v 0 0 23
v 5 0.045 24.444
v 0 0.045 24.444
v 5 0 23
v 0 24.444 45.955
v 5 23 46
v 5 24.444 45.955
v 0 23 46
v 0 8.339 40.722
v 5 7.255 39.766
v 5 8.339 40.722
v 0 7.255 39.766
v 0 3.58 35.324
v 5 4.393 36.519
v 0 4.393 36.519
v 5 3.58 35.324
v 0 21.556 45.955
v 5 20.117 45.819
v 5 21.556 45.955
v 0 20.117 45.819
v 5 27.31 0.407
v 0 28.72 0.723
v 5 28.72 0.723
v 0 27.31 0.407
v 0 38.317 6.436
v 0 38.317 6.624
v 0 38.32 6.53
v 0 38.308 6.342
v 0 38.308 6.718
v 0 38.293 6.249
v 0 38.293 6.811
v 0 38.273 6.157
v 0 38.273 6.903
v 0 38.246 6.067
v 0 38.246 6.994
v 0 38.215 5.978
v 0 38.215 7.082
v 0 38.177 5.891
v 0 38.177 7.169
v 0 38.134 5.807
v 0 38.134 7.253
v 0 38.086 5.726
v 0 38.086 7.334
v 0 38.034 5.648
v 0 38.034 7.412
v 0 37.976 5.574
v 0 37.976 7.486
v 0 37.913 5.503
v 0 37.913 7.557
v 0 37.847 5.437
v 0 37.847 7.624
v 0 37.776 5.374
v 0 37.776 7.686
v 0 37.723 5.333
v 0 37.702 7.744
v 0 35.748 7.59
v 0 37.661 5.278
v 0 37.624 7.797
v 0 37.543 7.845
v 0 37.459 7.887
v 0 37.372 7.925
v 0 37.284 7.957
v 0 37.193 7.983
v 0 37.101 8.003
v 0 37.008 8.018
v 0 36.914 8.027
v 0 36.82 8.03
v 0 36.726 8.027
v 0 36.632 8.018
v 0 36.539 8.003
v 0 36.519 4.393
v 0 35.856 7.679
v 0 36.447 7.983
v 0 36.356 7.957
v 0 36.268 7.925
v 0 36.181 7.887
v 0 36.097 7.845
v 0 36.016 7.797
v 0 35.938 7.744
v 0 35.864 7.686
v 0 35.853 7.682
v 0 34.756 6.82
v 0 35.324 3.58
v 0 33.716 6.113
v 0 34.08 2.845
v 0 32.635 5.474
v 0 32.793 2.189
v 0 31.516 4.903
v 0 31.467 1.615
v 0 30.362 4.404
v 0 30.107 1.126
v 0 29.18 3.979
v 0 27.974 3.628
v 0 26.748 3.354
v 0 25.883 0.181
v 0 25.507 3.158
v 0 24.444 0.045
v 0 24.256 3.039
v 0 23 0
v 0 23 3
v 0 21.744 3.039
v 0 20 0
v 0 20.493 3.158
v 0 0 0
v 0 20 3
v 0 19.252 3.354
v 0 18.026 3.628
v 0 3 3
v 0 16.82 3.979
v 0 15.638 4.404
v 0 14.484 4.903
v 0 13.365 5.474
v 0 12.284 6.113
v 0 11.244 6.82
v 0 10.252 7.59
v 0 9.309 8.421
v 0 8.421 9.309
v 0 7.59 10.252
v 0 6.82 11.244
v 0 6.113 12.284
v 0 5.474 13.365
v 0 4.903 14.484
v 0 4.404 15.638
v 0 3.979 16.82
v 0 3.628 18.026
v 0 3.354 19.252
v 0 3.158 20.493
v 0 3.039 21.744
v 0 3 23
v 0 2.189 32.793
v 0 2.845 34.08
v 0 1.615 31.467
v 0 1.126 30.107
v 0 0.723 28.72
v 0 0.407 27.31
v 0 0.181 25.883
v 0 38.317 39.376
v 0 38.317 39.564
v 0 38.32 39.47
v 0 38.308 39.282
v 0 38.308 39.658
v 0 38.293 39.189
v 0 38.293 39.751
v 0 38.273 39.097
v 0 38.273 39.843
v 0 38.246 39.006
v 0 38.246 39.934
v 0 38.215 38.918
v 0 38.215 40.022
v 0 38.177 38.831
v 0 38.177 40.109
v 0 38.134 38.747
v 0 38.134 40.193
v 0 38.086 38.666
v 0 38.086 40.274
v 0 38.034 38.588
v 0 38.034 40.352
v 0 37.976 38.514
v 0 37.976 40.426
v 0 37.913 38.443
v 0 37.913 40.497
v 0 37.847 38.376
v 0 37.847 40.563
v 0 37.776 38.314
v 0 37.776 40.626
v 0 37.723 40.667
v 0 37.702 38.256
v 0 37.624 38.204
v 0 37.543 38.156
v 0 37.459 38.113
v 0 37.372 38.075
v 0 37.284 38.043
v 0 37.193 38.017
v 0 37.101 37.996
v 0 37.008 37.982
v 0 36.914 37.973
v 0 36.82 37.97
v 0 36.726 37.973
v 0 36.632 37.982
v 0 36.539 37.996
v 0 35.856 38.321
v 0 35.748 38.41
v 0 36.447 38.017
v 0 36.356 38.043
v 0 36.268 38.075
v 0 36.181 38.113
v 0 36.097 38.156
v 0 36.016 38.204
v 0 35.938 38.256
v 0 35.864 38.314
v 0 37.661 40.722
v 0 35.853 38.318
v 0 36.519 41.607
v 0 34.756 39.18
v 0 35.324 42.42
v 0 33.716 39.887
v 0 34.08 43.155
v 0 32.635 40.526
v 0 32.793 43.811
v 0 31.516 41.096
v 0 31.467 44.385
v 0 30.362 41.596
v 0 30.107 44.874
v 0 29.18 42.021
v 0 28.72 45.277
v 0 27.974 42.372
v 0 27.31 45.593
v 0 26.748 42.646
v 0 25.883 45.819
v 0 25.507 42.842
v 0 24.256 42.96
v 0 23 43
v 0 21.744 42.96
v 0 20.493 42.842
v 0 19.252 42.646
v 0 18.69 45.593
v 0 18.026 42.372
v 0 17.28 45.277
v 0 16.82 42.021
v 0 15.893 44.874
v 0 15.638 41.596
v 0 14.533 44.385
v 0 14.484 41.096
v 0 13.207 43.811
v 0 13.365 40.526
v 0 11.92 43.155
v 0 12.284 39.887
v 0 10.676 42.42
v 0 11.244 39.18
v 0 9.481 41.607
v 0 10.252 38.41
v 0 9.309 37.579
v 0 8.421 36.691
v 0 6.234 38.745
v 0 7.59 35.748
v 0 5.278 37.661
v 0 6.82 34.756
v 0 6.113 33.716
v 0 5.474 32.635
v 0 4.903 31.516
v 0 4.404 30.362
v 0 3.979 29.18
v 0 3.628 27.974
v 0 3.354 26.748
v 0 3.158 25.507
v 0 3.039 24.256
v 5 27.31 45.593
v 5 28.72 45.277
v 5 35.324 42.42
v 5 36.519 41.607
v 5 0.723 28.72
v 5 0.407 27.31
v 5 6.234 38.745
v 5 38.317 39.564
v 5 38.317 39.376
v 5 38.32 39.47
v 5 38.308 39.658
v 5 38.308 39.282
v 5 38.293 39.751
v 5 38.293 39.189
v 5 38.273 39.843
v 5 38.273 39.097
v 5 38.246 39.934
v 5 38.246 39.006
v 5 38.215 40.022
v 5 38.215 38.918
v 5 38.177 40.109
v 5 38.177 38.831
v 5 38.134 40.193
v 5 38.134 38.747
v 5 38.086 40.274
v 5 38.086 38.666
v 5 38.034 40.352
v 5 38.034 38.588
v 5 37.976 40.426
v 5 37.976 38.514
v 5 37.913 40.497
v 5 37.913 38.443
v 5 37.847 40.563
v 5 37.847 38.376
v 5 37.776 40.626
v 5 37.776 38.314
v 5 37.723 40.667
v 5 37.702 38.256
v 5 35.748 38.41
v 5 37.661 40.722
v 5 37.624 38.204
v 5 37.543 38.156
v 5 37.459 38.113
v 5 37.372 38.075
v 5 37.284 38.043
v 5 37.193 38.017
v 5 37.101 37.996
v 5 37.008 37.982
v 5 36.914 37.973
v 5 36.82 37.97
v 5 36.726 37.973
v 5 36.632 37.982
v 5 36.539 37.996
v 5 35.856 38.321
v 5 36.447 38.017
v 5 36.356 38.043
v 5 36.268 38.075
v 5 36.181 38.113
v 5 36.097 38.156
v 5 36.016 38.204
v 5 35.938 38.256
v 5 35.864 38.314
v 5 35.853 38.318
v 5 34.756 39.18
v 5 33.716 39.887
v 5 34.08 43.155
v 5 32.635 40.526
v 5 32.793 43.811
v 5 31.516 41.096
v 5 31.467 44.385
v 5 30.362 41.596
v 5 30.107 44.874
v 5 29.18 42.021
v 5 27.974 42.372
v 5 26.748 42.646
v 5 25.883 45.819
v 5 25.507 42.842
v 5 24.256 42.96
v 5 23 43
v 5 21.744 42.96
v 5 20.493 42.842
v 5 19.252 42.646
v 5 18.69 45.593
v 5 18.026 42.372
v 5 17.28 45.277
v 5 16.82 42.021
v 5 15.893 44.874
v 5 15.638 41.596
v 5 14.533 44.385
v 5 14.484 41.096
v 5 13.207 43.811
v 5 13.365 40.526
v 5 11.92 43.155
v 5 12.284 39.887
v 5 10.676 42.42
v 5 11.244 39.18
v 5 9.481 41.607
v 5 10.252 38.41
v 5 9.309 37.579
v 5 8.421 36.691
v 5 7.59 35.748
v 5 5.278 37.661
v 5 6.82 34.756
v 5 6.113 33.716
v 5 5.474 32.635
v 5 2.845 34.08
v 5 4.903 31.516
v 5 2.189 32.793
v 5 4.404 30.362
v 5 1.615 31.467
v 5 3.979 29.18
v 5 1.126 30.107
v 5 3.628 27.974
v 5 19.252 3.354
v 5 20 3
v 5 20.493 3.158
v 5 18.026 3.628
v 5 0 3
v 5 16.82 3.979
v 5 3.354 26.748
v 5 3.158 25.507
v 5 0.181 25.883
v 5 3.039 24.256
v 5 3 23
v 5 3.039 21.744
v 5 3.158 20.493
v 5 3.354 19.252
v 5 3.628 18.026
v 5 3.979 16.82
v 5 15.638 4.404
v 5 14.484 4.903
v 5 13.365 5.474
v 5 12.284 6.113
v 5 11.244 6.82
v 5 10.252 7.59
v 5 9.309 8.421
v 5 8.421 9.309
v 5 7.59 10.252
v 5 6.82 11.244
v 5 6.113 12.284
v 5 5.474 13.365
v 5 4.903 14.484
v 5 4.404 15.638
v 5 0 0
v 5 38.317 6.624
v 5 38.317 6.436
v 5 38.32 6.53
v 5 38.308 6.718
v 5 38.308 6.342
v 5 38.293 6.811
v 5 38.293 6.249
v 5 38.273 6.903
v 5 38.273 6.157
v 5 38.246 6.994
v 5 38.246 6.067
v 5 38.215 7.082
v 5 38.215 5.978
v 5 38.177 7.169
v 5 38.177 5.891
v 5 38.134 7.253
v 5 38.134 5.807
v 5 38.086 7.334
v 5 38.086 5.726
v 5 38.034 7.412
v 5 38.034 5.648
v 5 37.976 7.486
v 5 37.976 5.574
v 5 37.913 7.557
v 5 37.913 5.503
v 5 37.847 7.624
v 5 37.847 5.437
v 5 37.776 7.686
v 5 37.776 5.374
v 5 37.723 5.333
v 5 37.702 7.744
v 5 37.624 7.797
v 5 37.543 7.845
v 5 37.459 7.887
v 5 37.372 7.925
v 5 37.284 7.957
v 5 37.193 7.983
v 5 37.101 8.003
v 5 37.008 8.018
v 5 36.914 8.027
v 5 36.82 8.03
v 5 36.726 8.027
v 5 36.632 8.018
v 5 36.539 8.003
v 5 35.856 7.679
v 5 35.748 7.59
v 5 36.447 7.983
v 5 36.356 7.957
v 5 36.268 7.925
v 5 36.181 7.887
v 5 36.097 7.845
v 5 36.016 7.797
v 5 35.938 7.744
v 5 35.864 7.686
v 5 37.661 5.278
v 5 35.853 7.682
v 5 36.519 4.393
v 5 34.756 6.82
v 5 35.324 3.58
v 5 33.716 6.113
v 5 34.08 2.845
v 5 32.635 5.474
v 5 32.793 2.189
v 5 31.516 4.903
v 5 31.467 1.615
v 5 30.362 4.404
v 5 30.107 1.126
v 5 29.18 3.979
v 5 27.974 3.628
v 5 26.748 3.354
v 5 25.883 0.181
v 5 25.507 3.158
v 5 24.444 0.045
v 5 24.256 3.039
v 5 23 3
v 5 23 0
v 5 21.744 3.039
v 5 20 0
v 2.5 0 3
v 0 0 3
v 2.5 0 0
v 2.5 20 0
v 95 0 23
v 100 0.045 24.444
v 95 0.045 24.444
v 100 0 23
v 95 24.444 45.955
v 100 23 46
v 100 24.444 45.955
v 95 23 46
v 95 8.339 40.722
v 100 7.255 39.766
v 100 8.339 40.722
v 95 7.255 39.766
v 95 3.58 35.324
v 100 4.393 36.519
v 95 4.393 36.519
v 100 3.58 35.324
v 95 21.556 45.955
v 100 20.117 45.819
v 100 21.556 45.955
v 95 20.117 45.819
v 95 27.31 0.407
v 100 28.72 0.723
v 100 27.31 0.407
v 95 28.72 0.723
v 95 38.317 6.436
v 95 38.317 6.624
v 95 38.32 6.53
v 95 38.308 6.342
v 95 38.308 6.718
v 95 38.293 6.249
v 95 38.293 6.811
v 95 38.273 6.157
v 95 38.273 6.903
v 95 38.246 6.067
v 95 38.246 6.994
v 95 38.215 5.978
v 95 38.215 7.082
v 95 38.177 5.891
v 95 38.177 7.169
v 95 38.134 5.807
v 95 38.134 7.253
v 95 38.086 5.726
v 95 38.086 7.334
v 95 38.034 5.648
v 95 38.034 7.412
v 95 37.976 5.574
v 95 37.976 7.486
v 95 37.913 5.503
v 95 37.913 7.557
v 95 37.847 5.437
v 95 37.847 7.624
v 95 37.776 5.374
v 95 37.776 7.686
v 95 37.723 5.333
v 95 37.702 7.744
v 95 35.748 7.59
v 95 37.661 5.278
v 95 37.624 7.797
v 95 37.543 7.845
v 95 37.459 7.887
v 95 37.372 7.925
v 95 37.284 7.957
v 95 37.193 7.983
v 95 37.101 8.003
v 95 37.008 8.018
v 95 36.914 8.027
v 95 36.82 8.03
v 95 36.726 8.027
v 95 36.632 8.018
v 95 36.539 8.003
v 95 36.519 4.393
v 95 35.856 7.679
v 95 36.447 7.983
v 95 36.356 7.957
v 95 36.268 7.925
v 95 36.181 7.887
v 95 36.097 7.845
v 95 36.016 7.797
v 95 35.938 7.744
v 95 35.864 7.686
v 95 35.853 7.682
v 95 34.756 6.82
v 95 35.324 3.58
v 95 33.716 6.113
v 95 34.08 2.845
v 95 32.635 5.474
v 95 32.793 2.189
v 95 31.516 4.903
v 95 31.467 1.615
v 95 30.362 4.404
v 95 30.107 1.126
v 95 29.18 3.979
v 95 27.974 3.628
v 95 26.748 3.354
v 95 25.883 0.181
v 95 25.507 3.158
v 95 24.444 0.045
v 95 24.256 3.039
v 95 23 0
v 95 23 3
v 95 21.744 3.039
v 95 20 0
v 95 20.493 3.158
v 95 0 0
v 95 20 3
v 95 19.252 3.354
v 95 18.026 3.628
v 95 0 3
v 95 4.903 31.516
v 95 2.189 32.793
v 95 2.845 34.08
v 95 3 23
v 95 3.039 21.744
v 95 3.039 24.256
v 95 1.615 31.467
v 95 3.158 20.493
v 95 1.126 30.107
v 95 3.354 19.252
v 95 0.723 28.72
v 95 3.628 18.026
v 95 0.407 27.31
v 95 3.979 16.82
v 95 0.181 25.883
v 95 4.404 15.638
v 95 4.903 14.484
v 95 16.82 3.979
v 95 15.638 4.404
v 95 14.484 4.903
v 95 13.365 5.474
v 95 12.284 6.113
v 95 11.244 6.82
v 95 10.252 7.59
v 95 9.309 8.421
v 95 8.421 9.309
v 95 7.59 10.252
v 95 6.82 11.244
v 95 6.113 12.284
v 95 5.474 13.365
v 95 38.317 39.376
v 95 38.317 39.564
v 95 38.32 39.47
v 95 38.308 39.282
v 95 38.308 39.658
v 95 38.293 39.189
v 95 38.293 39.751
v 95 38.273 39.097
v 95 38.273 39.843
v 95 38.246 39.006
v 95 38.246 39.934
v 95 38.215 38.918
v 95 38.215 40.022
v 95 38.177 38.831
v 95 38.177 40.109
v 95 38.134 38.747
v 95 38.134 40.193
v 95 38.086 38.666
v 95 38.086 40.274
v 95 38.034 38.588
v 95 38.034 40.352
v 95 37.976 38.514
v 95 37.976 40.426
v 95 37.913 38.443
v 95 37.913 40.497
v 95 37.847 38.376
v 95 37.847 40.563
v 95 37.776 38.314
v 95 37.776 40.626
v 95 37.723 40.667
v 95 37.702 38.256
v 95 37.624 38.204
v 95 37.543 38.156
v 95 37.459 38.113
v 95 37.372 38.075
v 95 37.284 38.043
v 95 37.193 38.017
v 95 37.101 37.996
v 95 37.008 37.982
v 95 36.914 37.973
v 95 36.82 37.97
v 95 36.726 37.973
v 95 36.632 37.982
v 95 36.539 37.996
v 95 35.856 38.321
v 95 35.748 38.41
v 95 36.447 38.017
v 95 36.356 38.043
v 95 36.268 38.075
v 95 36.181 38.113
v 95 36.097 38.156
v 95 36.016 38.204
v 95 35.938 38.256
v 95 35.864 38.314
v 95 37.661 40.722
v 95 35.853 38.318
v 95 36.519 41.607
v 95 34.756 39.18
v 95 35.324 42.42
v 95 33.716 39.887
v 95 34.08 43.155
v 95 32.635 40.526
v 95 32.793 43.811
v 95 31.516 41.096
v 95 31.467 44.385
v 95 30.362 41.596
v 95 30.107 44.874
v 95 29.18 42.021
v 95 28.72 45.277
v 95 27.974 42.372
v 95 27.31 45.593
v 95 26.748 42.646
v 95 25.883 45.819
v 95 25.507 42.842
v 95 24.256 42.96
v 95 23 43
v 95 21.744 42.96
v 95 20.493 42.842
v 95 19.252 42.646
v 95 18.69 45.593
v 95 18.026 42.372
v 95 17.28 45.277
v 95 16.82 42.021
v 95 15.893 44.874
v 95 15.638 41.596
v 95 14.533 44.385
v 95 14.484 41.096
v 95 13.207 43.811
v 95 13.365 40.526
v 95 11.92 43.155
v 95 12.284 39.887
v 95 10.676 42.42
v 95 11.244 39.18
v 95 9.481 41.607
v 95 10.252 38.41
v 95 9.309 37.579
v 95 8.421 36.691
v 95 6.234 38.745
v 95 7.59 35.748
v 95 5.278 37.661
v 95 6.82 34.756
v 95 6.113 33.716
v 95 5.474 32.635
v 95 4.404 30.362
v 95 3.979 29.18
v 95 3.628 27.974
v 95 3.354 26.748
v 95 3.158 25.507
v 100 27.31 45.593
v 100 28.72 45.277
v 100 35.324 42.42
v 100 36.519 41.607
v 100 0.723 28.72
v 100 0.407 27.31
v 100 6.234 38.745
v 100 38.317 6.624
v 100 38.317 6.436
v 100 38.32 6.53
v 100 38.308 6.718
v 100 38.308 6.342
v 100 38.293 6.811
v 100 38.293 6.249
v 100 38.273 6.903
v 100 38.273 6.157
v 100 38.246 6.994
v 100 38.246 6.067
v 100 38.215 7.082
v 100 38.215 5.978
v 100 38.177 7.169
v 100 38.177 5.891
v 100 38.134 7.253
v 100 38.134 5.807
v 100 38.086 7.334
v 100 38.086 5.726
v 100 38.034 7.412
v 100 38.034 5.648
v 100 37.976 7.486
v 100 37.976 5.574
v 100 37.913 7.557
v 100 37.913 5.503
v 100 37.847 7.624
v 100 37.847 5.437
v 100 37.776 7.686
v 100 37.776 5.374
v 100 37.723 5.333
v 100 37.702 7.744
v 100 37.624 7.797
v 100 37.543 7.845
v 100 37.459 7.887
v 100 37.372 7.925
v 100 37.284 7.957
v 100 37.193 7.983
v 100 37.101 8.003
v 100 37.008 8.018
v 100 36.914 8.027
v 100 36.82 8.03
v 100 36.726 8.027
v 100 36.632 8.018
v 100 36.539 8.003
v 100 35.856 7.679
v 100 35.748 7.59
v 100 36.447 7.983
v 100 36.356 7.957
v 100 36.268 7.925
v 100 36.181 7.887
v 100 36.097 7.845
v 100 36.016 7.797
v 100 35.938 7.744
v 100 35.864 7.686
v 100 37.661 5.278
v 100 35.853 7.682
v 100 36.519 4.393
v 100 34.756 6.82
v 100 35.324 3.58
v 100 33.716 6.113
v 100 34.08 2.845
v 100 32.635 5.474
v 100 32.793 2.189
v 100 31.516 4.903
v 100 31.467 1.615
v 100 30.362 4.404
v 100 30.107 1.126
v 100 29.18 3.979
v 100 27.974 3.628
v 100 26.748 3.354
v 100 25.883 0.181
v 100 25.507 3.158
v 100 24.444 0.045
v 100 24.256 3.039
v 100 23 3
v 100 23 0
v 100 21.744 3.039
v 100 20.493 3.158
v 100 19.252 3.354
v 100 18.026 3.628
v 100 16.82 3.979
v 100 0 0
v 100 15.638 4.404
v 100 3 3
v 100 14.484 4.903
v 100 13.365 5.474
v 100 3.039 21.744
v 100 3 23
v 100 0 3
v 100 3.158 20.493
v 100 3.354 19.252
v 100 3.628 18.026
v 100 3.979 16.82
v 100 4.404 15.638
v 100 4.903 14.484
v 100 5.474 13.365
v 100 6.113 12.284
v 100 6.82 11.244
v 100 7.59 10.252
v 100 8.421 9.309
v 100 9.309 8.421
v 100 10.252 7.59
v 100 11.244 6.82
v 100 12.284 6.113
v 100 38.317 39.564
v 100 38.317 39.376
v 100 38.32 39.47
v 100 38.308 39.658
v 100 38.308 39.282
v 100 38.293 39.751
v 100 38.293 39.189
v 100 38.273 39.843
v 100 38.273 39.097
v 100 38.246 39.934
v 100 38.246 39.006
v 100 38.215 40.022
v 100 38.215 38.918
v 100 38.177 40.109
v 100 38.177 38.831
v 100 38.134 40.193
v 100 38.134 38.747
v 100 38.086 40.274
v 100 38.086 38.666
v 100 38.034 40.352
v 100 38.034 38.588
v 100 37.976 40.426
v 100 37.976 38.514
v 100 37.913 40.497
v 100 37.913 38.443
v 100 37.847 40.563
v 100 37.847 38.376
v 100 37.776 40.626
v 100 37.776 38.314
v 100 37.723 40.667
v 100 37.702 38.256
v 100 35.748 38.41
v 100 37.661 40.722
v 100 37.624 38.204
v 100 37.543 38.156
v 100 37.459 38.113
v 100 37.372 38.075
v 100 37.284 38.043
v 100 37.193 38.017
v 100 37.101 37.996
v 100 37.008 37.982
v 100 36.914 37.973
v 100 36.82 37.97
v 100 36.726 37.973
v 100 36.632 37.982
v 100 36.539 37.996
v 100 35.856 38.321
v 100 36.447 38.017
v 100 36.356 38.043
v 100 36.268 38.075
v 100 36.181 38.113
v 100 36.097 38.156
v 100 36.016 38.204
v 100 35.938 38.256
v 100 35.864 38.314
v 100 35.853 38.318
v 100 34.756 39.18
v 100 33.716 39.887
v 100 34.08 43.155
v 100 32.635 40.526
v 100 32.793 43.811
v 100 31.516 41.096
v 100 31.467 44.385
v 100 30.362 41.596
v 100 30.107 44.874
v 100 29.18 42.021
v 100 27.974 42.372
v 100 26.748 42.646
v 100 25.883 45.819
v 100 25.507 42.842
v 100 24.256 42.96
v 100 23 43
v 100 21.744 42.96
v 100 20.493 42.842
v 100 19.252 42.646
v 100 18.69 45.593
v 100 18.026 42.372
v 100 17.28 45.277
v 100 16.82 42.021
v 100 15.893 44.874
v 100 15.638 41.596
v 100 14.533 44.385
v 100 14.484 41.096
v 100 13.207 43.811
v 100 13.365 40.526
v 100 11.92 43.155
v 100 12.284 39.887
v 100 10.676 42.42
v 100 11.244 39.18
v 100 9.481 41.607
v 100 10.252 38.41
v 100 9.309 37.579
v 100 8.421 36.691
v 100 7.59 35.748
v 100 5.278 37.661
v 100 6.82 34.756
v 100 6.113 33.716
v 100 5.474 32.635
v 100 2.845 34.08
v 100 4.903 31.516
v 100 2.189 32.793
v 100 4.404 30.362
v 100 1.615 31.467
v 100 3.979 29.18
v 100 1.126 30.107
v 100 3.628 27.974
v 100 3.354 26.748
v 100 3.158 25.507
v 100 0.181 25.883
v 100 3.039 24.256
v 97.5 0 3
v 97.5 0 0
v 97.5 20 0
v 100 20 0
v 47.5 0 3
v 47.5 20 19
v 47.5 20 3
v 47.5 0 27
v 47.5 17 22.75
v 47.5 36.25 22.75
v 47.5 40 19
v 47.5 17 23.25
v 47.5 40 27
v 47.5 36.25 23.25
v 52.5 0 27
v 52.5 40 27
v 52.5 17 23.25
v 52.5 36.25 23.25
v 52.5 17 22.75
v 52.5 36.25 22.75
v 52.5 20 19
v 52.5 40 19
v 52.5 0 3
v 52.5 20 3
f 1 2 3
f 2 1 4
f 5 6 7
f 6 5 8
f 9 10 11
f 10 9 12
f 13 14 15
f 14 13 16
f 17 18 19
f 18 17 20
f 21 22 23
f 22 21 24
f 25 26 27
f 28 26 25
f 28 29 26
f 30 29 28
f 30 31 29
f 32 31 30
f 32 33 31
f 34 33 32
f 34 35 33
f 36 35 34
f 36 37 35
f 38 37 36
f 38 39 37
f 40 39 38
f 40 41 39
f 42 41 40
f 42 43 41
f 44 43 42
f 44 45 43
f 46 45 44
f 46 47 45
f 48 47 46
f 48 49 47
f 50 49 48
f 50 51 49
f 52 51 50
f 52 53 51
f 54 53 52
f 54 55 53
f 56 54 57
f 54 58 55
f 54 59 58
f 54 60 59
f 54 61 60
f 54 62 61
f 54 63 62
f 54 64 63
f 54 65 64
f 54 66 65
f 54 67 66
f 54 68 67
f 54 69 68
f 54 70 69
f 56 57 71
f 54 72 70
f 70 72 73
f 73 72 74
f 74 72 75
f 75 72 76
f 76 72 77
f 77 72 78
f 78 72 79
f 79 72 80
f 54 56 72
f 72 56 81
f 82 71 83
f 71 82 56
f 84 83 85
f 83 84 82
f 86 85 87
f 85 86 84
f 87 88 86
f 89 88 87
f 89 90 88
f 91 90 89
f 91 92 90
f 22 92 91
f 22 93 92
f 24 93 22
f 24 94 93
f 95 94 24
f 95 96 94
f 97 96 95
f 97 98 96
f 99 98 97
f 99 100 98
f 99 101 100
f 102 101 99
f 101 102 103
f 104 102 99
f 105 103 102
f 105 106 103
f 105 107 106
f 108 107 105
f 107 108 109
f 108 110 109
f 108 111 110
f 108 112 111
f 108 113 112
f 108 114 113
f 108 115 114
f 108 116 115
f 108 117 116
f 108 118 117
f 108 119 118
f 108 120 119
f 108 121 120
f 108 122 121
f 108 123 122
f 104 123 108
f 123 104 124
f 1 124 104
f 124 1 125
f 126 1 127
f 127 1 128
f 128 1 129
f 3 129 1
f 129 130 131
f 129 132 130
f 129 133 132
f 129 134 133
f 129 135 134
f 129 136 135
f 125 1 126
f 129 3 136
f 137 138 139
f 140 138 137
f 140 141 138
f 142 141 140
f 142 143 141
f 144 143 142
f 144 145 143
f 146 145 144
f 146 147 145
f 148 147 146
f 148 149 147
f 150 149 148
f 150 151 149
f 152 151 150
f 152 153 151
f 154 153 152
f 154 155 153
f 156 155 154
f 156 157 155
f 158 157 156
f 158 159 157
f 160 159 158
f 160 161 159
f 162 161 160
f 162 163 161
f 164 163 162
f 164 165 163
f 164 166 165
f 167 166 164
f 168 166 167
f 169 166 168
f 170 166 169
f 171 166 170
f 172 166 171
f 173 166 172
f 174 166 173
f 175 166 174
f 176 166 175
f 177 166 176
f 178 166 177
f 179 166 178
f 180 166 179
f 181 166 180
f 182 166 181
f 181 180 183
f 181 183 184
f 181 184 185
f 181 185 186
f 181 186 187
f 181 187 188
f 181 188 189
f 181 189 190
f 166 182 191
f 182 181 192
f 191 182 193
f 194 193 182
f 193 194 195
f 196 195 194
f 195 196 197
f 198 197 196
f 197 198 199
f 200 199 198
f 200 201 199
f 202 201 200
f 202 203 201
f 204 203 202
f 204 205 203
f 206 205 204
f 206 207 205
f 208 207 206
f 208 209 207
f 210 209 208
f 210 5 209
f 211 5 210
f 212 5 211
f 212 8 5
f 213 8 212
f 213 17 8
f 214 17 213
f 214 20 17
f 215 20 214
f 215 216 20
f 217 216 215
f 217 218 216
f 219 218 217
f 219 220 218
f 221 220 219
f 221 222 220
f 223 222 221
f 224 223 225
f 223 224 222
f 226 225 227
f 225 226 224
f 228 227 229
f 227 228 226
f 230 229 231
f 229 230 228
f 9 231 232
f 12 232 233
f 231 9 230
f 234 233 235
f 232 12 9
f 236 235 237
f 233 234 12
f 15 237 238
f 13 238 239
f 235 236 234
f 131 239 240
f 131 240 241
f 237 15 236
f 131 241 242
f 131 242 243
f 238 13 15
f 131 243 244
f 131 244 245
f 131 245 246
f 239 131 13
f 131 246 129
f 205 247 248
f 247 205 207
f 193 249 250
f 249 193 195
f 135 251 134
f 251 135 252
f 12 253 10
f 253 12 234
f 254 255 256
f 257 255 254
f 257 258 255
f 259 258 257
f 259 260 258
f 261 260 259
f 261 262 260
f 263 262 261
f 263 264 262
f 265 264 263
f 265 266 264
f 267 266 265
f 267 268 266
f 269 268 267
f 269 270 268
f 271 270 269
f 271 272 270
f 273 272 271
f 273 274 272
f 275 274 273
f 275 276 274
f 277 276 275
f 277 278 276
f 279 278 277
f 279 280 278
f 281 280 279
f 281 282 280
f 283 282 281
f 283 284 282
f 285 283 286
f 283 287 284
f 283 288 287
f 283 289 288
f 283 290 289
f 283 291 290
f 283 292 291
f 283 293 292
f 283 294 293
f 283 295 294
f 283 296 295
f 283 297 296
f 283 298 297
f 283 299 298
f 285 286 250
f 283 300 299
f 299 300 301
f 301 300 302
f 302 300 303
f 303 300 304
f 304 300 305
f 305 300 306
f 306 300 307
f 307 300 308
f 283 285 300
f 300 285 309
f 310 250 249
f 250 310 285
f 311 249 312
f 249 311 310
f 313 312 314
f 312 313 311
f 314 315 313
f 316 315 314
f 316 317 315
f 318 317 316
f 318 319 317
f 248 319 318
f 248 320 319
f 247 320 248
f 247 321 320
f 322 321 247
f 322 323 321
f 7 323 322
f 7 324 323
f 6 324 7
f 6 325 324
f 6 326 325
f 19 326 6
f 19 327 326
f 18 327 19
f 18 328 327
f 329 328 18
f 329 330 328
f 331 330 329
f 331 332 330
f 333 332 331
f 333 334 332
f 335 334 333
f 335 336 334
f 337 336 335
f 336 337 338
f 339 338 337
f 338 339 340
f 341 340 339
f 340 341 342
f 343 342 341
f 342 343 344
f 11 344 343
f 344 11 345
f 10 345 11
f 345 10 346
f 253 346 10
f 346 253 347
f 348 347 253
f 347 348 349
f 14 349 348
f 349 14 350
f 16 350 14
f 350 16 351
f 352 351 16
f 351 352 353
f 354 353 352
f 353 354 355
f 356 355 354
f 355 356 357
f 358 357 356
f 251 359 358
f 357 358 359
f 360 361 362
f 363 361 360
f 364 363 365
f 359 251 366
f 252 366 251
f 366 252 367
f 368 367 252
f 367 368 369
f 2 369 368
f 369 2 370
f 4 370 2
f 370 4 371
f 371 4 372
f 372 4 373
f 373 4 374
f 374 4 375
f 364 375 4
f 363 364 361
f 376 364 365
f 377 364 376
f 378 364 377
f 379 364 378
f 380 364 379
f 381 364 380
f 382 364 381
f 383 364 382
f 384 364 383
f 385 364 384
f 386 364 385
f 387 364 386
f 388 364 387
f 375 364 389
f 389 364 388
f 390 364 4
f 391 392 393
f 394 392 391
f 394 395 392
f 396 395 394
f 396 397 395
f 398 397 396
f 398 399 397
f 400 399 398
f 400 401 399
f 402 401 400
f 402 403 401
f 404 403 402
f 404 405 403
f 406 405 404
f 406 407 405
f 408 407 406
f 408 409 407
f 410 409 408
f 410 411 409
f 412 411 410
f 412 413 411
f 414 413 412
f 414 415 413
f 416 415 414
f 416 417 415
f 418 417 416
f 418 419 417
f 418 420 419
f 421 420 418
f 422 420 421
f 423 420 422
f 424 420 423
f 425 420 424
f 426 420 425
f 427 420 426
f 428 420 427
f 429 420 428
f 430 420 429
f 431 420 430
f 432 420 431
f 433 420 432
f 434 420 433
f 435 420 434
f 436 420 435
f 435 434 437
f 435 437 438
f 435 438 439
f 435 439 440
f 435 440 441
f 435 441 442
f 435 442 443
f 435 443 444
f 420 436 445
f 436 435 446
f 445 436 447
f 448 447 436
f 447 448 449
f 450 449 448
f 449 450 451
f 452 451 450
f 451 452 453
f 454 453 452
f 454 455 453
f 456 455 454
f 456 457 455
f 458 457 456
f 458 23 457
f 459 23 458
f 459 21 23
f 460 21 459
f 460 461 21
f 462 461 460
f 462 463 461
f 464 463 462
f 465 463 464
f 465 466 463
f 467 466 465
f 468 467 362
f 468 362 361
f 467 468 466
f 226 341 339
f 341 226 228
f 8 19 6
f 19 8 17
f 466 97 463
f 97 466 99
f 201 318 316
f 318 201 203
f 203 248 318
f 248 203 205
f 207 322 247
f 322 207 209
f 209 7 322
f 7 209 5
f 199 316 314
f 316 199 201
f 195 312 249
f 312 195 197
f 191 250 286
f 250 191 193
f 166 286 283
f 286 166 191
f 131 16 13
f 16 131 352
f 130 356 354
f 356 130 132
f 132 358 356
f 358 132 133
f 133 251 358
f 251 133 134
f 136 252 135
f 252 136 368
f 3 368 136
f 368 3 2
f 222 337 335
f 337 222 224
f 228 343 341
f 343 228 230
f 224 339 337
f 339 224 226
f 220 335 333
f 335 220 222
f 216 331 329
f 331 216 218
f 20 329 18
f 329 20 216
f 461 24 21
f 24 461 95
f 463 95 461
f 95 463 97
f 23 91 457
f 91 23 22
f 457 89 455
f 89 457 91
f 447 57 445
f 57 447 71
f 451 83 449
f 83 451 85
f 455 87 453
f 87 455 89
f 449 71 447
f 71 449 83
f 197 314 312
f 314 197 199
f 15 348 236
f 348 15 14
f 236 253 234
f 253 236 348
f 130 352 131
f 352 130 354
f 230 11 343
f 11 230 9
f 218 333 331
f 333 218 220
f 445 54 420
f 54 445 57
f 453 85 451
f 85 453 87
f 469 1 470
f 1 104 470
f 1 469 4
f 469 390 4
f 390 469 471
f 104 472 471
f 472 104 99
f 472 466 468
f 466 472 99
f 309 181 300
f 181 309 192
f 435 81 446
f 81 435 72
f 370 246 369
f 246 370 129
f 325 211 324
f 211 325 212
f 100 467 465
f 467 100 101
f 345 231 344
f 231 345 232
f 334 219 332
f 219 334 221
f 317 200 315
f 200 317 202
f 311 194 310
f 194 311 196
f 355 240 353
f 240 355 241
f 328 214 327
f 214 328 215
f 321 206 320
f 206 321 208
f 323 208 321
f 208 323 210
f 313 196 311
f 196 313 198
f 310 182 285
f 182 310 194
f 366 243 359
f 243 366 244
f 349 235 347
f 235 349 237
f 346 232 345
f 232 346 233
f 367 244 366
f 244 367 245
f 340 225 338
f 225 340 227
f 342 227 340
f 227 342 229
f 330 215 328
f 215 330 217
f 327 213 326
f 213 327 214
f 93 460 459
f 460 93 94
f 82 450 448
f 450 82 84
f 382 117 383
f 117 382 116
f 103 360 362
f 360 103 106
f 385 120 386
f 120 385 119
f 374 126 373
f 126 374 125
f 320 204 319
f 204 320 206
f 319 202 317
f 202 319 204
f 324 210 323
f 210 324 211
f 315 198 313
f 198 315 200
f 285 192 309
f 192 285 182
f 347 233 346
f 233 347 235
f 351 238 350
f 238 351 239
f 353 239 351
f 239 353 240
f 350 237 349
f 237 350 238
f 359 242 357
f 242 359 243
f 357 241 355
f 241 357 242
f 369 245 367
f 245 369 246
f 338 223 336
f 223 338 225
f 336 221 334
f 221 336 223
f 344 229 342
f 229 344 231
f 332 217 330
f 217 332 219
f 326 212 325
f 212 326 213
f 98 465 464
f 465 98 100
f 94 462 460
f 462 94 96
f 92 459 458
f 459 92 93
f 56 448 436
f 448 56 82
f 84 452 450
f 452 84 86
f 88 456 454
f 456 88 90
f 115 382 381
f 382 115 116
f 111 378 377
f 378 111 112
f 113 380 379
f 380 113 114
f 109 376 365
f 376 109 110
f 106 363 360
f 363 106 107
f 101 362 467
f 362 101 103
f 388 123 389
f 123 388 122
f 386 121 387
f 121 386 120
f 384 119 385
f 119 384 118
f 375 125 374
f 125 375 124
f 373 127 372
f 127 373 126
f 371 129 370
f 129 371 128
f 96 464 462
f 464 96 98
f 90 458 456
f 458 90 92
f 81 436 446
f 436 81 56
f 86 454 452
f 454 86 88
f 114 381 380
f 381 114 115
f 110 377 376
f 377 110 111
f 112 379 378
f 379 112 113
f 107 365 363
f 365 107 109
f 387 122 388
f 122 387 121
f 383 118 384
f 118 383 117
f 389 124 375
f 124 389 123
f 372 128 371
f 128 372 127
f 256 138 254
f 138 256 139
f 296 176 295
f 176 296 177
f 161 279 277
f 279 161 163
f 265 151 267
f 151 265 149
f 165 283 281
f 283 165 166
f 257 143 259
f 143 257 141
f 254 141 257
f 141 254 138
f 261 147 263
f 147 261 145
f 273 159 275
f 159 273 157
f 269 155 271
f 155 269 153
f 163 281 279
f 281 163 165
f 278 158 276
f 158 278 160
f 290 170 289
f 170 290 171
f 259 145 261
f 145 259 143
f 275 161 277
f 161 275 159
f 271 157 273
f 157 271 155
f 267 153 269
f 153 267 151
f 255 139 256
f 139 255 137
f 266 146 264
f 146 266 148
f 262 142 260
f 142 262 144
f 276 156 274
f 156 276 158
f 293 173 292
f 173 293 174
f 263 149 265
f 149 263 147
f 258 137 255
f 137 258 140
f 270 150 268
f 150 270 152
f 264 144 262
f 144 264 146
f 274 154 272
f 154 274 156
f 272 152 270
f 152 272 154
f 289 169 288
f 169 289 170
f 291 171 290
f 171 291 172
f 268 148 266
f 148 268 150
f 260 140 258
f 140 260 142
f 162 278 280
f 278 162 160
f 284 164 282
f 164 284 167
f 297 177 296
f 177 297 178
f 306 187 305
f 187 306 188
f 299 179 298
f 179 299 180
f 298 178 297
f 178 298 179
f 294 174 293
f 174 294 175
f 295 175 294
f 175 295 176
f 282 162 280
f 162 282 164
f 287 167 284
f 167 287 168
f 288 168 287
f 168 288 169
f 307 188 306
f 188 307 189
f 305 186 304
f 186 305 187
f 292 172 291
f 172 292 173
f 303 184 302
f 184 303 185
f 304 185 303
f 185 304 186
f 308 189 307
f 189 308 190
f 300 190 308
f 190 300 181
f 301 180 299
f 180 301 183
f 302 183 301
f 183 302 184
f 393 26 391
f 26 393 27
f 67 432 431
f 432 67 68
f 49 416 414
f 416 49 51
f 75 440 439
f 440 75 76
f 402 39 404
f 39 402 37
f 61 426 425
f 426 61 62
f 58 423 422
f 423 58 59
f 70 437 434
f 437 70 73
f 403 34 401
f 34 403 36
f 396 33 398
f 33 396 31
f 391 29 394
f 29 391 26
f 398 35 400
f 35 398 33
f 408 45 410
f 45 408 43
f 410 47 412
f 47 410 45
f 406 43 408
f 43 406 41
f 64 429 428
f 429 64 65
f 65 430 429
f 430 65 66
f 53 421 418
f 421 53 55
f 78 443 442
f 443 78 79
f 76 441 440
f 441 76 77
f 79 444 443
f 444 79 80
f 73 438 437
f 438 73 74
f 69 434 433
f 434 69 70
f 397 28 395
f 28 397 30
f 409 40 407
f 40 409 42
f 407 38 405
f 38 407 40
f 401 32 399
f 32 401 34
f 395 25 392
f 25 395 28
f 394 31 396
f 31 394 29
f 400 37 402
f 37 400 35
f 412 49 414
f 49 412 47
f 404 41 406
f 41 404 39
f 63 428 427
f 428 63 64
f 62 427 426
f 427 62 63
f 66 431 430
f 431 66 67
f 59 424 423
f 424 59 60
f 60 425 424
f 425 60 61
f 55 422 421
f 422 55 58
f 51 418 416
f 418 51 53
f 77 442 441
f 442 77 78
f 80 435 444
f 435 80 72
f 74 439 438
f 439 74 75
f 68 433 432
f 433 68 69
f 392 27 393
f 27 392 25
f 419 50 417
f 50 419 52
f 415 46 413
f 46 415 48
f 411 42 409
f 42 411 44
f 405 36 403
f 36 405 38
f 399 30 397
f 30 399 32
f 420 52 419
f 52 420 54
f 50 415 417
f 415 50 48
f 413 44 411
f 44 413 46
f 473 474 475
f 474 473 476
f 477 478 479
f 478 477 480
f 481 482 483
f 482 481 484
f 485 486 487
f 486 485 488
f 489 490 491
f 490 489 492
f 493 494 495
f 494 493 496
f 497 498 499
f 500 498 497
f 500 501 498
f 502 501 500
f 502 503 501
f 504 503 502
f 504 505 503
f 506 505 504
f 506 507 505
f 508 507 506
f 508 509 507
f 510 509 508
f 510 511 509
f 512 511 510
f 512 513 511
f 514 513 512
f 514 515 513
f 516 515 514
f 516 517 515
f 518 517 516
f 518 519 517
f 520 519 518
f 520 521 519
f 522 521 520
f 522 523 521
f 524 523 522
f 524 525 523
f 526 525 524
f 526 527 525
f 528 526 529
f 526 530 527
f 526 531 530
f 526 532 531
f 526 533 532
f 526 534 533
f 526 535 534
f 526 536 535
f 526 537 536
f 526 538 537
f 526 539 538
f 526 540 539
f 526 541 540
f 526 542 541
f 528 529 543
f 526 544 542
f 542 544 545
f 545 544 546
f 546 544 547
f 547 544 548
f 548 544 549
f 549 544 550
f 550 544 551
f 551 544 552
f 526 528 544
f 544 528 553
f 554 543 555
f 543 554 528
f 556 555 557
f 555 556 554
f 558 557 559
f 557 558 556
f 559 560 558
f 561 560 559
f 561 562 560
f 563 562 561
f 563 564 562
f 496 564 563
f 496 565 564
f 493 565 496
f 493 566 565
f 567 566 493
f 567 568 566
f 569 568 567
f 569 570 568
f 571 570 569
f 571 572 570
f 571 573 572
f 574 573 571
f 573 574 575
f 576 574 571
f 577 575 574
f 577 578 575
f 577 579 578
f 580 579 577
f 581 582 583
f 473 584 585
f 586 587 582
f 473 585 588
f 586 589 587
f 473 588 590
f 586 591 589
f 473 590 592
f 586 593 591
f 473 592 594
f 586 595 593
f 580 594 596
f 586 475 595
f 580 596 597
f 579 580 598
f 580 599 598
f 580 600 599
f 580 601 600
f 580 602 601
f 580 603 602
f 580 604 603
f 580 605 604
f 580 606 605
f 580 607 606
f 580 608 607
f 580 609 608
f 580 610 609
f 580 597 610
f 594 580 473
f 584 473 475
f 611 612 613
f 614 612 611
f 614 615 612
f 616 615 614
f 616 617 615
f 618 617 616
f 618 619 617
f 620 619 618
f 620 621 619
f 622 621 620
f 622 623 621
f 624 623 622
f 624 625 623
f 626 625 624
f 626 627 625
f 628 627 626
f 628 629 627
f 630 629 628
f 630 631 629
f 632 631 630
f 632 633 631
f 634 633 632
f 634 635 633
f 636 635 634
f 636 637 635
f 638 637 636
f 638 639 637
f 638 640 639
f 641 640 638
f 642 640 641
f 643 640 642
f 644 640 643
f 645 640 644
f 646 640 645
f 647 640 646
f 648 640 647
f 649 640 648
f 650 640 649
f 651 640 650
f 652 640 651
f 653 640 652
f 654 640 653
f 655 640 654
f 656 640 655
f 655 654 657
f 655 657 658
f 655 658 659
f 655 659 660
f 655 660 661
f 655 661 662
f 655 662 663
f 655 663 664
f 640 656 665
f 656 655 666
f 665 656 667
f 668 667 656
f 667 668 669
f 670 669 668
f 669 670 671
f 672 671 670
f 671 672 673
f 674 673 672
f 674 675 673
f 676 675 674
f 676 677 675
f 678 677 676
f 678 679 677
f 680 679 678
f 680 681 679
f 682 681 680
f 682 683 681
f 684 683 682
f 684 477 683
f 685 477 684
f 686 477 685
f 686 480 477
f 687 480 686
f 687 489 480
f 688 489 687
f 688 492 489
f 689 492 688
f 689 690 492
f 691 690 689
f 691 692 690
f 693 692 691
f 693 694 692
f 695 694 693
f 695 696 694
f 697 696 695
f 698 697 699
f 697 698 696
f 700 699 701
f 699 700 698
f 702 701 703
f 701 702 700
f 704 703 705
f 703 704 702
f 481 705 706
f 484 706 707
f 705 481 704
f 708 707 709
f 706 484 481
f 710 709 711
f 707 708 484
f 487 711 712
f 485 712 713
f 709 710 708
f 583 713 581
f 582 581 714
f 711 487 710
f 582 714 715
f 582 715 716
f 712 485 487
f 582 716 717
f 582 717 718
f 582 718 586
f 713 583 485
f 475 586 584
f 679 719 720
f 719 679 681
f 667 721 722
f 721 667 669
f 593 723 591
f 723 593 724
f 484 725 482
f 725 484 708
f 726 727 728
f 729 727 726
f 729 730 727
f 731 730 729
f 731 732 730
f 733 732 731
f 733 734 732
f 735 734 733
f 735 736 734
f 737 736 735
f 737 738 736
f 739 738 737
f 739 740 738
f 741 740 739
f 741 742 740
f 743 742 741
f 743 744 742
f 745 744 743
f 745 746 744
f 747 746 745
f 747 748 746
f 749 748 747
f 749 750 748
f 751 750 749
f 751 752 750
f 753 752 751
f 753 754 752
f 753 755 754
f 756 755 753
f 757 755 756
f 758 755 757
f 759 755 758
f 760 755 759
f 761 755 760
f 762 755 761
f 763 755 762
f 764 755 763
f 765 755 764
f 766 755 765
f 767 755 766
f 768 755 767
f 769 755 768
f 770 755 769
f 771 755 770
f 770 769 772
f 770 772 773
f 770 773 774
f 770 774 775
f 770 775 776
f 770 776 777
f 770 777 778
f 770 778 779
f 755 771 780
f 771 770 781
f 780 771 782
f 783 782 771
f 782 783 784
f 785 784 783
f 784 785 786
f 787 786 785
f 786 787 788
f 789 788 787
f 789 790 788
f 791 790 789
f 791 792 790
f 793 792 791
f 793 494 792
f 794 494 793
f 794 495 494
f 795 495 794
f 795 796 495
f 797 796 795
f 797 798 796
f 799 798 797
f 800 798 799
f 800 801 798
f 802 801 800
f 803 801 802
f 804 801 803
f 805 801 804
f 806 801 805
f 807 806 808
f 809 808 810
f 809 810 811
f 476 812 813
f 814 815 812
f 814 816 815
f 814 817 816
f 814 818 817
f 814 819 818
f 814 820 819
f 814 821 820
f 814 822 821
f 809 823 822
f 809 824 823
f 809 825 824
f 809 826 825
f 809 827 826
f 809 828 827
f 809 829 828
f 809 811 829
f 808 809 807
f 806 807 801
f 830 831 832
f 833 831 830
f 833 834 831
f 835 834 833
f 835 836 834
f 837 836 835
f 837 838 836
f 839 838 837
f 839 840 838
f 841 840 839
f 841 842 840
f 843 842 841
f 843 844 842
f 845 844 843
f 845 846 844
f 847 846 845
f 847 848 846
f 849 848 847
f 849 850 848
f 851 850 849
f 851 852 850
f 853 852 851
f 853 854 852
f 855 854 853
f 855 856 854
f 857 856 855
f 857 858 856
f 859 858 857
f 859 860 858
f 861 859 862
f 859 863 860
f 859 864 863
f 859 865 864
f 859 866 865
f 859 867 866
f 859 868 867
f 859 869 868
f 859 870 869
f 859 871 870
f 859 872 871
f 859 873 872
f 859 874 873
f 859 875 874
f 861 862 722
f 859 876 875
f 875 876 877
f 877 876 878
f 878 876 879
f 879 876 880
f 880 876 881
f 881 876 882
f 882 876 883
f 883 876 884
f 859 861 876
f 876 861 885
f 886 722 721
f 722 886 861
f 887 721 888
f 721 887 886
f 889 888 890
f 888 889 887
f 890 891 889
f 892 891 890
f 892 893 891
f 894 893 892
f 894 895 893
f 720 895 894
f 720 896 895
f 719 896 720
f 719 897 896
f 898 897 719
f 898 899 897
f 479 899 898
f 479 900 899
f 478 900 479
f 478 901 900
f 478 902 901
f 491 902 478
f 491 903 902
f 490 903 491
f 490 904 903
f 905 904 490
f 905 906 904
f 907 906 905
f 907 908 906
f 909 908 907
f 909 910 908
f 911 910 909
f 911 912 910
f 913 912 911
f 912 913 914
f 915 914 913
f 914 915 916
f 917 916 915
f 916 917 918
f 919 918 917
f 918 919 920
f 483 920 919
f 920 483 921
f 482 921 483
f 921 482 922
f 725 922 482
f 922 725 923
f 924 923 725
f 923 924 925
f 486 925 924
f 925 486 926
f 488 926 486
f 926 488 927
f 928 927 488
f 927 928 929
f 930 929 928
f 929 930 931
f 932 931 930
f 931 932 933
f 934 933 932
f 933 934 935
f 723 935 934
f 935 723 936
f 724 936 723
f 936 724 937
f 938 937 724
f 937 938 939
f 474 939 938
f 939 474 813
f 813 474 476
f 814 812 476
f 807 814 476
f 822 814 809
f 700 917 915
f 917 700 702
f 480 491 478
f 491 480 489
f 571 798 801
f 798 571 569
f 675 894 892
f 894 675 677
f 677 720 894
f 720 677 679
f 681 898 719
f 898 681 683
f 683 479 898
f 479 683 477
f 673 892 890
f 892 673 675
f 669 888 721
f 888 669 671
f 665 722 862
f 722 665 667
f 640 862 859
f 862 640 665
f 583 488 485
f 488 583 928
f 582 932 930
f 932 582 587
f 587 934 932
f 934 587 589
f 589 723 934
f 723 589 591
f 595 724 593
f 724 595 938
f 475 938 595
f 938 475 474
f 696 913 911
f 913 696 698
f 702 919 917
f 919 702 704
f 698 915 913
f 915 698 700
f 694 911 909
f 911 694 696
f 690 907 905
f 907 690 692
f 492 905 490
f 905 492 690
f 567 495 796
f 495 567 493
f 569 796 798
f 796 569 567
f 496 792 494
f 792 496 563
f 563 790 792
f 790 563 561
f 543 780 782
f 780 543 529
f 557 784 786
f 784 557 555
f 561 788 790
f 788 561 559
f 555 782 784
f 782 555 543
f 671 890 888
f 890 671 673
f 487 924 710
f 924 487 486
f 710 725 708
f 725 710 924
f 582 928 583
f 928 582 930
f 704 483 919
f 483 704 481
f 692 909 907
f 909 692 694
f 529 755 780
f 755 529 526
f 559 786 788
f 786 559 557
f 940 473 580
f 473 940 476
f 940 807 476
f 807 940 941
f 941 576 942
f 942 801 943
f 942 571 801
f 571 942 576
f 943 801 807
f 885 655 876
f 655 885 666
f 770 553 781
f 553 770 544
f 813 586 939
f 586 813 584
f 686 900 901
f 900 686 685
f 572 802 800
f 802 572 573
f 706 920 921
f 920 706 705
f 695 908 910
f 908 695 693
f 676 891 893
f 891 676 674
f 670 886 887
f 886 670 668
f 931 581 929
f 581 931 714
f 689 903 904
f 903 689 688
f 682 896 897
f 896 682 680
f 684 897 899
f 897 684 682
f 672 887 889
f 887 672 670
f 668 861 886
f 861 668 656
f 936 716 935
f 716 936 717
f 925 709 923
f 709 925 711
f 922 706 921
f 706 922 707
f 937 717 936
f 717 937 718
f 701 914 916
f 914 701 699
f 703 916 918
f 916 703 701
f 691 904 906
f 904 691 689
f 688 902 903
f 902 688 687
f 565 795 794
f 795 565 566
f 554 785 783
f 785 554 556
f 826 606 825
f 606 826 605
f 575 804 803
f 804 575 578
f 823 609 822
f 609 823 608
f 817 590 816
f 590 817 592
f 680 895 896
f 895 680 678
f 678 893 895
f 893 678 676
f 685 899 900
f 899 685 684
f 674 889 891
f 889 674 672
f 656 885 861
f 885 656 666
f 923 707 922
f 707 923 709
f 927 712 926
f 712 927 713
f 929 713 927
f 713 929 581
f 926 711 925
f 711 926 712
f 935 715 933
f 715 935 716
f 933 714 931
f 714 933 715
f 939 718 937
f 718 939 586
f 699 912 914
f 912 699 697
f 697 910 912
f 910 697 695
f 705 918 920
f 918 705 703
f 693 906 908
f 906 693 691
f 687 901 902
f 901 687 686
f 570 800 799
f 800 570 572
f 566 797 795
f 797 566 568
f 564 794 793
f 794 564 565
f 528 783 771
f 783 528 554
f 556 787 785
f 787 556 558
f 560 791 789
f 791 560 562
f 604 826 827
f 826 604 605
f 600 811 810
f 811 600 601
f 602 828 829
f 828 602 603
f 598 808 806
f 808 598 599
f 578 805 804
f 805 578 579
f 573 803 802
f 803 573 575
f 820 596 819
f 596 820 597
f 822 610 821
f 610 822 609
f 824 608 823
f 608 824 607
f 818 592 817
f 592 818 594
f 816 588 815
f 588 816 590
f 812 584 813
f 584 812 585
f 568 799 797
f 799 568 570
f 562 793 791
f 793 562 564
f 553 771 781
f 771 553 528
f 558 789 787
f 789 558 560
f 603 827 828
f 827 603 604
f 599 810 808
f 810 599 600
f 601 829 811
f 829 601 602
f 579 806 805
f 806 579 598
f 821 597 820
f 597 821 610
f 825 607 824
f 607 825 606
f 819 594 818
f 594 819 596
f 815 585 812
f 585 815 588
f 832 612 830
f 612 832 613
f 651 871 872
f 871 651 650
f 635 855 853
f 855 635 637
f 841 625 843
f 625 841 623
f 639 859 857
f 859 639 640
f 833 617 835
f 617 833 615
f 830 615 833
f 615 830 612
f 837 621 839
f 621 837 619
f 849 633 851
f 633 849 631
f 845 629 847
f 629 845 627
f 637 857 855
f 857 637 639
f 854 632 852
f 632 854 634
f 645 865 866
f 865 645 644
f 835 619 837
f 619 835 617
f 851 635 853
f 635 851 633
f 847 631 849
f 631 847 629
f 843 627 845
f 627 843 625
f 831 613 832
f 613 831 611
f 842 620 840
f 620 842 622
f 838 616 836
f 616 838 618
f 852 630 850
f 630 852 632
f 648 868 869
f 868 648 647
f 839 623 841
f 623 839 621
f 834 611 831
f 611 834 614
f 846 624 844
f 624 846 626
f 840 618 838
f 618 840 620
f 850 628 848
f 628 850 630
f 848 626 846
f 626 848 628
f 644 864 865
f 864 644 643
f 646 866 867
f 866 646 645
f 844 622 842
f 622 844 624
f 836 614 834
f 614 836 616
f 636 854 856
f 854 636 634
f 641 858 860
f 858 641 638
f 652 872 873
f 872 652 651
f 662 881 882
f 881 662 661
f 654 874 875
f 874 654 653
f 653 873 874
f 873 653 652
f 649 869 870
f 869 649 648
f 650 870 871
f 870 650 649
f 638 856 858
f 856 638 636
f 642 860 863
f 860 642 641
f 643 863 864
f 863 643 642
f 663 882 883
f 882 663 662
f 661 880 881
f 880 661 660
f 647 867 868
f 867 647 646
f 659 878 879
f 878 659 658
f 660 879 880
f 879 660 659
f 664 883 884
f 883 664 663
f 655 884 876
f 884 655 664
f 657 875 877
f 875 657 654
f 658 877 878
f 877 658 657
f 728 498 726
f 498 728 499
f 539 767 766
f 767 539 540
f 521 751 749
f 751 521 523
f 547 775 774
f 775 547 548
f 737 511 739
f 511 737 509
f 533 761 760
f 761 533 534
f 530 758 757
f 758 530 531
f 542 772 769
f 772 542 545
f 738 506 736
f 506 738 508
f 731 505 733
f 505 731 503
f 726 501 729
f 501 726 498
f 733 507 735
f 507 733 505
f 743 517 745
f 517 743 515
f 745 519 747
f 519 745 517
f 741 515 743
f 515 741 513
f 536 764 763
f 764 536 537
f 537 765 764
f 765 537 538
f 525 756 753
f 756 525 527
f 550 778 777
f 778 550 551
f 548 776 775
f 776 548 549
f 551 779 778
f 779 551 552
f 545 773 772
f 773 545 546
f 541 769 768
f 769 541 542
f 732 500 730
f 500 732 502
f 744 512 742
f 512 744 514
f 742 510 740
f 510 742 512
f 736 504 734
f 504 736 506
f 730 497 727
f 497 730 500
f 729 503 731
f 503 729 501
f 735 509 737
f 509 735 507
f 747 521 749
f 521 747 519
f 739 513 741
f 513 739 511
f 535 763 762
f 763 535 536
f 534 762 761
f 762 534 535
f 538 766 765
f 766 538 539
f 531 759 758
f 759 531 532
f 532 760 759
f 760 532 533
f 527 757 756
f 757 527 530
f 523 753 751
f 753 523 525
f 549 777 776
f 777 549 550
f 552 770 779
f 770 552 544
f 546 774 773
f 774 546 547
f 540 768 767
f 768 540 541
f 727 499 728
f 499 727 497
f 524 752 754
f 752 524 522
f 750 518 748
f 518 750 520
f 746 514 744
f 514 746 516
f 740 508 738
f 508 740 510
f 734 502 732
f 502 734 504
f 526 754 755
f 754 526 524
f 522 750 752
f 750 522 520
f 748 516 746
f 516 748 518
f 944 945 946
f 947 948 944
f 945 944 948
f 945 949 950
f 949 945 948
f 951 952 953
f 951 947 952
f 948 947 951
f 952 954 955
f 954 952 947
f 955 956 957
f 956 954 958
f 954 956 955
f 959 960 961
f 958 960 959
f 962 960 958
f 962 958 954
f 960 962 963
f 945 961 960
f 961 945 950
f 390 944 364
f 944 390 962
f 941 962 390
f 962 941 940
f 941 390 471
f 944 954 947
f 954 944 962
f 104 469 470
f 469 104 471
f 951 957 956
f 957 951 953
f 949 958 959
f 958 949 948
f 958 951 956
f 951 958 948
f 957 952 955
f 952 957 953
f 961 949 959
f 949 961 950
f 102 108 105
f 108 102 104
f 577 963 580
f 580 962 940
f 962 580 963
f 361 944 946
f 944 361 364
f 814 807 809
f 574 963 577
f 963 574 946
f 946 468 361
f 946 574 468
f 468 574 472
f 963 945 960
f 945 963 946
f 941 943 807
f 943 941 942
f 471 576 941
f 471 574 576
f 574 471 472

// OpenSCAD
$fn = 100;

main(
    balloon_diameter = 40,
    thickness        = 3,
    length           = 100,
    holder_length    = 5,
    clamp_length     = 5,
    clamp_height     = 8,
    clamp_gap        = 0.5,
    clamp_extra_cut  = 3
);

module main() {
    cube(size=[length, balloon_diameter / 2, thickness]);

    holder_positions = [
        [0, 0],
        [length - holder_length, 0]
    ];

    for(pos = holder_positions) {
        translate(pos)
            balloon_holder(
                l         = holder_length,
                r         = balloon_diameter / 2,
                cut_angle = 100,
                thickness = thickness
            );
    }

    translate([(length - clamp_length) / 2, 0, balloon_diameter / 2 - clamp_height / 2 + thickness])
        clamp(
            l         = clamp_length,
            w         = balloon_diameter,
            h         = clamp_height,
            gap       = clamp_gap,
            extra_cut = clamp_extra_cut
        );

    translate([(length - clamp_length) / 2, 0, 0])
        cube(size=[clamp_length, balloon_diameter / 2, balloon_diameter / 2 + thickness - clamp_height / 2 + 0.1], center=false);
}

module clamp() {
    difference() {
        cube(size=[l, w, h]);

        translate([-1, w / 2 - extra_cut, (h - gap) / 2])
        cube(size=[l + 2, w / 2 + extra_cut, gap]);

        mouth_side = sqrt(h * h / 2);

        translate([l / 2, w, h / 2])
        rotate([45, 0, 0])
            cube(size=[l + 2, mouth_side, mouth_side], center=true);
    }
}


module balloon_holder() {
    holder_side = (r + thickness) * 2;
    outer_r = r + thickness;

    translate([l / 2, outer_r, outer_r])
    rotate([90, 0, 90])
    union() {
        difference() {
            union() {
                cylinder(h=l, r=outer_r, center=true);

                translate([-outer_r / 2, -outer_r / 2])
                    cube(size=[outer_r, outer_r, l], center=true);
            }

            cylinder(h=l + 2, r=r, center=true);

            difference() {
                h = l + 2;
                r = outer_r + 1;

                cylinder(h=h, r=r, center=true);

                rotate([0, 0, cut_angle / 2])
                translate([-r, 0, -h / 2 - 1])
                    cube([r * 2, r, h + 2]);

                rotate([0, 0, -cut_angle / 2])
                translate([-r, -r, -h / 2 - 1])
                    cube([r * 2, r, h + 2]);
            }
        }

        lip_r = thickness / 2;
        lip_x = (r + thickness / 2) * cos(cut_angle / 2);
        lip_y = (r + thickness / 2) * sin(cut_angle / 2);

        lip_positions = [
            [lip_x, +lip_y],
            [lip_x, -lip_y],
        ];

        for(pos = lip_positions) {
            translate(pos)
                cylinder(r=lip_r, h=l, center=true);
        }
    }
}
